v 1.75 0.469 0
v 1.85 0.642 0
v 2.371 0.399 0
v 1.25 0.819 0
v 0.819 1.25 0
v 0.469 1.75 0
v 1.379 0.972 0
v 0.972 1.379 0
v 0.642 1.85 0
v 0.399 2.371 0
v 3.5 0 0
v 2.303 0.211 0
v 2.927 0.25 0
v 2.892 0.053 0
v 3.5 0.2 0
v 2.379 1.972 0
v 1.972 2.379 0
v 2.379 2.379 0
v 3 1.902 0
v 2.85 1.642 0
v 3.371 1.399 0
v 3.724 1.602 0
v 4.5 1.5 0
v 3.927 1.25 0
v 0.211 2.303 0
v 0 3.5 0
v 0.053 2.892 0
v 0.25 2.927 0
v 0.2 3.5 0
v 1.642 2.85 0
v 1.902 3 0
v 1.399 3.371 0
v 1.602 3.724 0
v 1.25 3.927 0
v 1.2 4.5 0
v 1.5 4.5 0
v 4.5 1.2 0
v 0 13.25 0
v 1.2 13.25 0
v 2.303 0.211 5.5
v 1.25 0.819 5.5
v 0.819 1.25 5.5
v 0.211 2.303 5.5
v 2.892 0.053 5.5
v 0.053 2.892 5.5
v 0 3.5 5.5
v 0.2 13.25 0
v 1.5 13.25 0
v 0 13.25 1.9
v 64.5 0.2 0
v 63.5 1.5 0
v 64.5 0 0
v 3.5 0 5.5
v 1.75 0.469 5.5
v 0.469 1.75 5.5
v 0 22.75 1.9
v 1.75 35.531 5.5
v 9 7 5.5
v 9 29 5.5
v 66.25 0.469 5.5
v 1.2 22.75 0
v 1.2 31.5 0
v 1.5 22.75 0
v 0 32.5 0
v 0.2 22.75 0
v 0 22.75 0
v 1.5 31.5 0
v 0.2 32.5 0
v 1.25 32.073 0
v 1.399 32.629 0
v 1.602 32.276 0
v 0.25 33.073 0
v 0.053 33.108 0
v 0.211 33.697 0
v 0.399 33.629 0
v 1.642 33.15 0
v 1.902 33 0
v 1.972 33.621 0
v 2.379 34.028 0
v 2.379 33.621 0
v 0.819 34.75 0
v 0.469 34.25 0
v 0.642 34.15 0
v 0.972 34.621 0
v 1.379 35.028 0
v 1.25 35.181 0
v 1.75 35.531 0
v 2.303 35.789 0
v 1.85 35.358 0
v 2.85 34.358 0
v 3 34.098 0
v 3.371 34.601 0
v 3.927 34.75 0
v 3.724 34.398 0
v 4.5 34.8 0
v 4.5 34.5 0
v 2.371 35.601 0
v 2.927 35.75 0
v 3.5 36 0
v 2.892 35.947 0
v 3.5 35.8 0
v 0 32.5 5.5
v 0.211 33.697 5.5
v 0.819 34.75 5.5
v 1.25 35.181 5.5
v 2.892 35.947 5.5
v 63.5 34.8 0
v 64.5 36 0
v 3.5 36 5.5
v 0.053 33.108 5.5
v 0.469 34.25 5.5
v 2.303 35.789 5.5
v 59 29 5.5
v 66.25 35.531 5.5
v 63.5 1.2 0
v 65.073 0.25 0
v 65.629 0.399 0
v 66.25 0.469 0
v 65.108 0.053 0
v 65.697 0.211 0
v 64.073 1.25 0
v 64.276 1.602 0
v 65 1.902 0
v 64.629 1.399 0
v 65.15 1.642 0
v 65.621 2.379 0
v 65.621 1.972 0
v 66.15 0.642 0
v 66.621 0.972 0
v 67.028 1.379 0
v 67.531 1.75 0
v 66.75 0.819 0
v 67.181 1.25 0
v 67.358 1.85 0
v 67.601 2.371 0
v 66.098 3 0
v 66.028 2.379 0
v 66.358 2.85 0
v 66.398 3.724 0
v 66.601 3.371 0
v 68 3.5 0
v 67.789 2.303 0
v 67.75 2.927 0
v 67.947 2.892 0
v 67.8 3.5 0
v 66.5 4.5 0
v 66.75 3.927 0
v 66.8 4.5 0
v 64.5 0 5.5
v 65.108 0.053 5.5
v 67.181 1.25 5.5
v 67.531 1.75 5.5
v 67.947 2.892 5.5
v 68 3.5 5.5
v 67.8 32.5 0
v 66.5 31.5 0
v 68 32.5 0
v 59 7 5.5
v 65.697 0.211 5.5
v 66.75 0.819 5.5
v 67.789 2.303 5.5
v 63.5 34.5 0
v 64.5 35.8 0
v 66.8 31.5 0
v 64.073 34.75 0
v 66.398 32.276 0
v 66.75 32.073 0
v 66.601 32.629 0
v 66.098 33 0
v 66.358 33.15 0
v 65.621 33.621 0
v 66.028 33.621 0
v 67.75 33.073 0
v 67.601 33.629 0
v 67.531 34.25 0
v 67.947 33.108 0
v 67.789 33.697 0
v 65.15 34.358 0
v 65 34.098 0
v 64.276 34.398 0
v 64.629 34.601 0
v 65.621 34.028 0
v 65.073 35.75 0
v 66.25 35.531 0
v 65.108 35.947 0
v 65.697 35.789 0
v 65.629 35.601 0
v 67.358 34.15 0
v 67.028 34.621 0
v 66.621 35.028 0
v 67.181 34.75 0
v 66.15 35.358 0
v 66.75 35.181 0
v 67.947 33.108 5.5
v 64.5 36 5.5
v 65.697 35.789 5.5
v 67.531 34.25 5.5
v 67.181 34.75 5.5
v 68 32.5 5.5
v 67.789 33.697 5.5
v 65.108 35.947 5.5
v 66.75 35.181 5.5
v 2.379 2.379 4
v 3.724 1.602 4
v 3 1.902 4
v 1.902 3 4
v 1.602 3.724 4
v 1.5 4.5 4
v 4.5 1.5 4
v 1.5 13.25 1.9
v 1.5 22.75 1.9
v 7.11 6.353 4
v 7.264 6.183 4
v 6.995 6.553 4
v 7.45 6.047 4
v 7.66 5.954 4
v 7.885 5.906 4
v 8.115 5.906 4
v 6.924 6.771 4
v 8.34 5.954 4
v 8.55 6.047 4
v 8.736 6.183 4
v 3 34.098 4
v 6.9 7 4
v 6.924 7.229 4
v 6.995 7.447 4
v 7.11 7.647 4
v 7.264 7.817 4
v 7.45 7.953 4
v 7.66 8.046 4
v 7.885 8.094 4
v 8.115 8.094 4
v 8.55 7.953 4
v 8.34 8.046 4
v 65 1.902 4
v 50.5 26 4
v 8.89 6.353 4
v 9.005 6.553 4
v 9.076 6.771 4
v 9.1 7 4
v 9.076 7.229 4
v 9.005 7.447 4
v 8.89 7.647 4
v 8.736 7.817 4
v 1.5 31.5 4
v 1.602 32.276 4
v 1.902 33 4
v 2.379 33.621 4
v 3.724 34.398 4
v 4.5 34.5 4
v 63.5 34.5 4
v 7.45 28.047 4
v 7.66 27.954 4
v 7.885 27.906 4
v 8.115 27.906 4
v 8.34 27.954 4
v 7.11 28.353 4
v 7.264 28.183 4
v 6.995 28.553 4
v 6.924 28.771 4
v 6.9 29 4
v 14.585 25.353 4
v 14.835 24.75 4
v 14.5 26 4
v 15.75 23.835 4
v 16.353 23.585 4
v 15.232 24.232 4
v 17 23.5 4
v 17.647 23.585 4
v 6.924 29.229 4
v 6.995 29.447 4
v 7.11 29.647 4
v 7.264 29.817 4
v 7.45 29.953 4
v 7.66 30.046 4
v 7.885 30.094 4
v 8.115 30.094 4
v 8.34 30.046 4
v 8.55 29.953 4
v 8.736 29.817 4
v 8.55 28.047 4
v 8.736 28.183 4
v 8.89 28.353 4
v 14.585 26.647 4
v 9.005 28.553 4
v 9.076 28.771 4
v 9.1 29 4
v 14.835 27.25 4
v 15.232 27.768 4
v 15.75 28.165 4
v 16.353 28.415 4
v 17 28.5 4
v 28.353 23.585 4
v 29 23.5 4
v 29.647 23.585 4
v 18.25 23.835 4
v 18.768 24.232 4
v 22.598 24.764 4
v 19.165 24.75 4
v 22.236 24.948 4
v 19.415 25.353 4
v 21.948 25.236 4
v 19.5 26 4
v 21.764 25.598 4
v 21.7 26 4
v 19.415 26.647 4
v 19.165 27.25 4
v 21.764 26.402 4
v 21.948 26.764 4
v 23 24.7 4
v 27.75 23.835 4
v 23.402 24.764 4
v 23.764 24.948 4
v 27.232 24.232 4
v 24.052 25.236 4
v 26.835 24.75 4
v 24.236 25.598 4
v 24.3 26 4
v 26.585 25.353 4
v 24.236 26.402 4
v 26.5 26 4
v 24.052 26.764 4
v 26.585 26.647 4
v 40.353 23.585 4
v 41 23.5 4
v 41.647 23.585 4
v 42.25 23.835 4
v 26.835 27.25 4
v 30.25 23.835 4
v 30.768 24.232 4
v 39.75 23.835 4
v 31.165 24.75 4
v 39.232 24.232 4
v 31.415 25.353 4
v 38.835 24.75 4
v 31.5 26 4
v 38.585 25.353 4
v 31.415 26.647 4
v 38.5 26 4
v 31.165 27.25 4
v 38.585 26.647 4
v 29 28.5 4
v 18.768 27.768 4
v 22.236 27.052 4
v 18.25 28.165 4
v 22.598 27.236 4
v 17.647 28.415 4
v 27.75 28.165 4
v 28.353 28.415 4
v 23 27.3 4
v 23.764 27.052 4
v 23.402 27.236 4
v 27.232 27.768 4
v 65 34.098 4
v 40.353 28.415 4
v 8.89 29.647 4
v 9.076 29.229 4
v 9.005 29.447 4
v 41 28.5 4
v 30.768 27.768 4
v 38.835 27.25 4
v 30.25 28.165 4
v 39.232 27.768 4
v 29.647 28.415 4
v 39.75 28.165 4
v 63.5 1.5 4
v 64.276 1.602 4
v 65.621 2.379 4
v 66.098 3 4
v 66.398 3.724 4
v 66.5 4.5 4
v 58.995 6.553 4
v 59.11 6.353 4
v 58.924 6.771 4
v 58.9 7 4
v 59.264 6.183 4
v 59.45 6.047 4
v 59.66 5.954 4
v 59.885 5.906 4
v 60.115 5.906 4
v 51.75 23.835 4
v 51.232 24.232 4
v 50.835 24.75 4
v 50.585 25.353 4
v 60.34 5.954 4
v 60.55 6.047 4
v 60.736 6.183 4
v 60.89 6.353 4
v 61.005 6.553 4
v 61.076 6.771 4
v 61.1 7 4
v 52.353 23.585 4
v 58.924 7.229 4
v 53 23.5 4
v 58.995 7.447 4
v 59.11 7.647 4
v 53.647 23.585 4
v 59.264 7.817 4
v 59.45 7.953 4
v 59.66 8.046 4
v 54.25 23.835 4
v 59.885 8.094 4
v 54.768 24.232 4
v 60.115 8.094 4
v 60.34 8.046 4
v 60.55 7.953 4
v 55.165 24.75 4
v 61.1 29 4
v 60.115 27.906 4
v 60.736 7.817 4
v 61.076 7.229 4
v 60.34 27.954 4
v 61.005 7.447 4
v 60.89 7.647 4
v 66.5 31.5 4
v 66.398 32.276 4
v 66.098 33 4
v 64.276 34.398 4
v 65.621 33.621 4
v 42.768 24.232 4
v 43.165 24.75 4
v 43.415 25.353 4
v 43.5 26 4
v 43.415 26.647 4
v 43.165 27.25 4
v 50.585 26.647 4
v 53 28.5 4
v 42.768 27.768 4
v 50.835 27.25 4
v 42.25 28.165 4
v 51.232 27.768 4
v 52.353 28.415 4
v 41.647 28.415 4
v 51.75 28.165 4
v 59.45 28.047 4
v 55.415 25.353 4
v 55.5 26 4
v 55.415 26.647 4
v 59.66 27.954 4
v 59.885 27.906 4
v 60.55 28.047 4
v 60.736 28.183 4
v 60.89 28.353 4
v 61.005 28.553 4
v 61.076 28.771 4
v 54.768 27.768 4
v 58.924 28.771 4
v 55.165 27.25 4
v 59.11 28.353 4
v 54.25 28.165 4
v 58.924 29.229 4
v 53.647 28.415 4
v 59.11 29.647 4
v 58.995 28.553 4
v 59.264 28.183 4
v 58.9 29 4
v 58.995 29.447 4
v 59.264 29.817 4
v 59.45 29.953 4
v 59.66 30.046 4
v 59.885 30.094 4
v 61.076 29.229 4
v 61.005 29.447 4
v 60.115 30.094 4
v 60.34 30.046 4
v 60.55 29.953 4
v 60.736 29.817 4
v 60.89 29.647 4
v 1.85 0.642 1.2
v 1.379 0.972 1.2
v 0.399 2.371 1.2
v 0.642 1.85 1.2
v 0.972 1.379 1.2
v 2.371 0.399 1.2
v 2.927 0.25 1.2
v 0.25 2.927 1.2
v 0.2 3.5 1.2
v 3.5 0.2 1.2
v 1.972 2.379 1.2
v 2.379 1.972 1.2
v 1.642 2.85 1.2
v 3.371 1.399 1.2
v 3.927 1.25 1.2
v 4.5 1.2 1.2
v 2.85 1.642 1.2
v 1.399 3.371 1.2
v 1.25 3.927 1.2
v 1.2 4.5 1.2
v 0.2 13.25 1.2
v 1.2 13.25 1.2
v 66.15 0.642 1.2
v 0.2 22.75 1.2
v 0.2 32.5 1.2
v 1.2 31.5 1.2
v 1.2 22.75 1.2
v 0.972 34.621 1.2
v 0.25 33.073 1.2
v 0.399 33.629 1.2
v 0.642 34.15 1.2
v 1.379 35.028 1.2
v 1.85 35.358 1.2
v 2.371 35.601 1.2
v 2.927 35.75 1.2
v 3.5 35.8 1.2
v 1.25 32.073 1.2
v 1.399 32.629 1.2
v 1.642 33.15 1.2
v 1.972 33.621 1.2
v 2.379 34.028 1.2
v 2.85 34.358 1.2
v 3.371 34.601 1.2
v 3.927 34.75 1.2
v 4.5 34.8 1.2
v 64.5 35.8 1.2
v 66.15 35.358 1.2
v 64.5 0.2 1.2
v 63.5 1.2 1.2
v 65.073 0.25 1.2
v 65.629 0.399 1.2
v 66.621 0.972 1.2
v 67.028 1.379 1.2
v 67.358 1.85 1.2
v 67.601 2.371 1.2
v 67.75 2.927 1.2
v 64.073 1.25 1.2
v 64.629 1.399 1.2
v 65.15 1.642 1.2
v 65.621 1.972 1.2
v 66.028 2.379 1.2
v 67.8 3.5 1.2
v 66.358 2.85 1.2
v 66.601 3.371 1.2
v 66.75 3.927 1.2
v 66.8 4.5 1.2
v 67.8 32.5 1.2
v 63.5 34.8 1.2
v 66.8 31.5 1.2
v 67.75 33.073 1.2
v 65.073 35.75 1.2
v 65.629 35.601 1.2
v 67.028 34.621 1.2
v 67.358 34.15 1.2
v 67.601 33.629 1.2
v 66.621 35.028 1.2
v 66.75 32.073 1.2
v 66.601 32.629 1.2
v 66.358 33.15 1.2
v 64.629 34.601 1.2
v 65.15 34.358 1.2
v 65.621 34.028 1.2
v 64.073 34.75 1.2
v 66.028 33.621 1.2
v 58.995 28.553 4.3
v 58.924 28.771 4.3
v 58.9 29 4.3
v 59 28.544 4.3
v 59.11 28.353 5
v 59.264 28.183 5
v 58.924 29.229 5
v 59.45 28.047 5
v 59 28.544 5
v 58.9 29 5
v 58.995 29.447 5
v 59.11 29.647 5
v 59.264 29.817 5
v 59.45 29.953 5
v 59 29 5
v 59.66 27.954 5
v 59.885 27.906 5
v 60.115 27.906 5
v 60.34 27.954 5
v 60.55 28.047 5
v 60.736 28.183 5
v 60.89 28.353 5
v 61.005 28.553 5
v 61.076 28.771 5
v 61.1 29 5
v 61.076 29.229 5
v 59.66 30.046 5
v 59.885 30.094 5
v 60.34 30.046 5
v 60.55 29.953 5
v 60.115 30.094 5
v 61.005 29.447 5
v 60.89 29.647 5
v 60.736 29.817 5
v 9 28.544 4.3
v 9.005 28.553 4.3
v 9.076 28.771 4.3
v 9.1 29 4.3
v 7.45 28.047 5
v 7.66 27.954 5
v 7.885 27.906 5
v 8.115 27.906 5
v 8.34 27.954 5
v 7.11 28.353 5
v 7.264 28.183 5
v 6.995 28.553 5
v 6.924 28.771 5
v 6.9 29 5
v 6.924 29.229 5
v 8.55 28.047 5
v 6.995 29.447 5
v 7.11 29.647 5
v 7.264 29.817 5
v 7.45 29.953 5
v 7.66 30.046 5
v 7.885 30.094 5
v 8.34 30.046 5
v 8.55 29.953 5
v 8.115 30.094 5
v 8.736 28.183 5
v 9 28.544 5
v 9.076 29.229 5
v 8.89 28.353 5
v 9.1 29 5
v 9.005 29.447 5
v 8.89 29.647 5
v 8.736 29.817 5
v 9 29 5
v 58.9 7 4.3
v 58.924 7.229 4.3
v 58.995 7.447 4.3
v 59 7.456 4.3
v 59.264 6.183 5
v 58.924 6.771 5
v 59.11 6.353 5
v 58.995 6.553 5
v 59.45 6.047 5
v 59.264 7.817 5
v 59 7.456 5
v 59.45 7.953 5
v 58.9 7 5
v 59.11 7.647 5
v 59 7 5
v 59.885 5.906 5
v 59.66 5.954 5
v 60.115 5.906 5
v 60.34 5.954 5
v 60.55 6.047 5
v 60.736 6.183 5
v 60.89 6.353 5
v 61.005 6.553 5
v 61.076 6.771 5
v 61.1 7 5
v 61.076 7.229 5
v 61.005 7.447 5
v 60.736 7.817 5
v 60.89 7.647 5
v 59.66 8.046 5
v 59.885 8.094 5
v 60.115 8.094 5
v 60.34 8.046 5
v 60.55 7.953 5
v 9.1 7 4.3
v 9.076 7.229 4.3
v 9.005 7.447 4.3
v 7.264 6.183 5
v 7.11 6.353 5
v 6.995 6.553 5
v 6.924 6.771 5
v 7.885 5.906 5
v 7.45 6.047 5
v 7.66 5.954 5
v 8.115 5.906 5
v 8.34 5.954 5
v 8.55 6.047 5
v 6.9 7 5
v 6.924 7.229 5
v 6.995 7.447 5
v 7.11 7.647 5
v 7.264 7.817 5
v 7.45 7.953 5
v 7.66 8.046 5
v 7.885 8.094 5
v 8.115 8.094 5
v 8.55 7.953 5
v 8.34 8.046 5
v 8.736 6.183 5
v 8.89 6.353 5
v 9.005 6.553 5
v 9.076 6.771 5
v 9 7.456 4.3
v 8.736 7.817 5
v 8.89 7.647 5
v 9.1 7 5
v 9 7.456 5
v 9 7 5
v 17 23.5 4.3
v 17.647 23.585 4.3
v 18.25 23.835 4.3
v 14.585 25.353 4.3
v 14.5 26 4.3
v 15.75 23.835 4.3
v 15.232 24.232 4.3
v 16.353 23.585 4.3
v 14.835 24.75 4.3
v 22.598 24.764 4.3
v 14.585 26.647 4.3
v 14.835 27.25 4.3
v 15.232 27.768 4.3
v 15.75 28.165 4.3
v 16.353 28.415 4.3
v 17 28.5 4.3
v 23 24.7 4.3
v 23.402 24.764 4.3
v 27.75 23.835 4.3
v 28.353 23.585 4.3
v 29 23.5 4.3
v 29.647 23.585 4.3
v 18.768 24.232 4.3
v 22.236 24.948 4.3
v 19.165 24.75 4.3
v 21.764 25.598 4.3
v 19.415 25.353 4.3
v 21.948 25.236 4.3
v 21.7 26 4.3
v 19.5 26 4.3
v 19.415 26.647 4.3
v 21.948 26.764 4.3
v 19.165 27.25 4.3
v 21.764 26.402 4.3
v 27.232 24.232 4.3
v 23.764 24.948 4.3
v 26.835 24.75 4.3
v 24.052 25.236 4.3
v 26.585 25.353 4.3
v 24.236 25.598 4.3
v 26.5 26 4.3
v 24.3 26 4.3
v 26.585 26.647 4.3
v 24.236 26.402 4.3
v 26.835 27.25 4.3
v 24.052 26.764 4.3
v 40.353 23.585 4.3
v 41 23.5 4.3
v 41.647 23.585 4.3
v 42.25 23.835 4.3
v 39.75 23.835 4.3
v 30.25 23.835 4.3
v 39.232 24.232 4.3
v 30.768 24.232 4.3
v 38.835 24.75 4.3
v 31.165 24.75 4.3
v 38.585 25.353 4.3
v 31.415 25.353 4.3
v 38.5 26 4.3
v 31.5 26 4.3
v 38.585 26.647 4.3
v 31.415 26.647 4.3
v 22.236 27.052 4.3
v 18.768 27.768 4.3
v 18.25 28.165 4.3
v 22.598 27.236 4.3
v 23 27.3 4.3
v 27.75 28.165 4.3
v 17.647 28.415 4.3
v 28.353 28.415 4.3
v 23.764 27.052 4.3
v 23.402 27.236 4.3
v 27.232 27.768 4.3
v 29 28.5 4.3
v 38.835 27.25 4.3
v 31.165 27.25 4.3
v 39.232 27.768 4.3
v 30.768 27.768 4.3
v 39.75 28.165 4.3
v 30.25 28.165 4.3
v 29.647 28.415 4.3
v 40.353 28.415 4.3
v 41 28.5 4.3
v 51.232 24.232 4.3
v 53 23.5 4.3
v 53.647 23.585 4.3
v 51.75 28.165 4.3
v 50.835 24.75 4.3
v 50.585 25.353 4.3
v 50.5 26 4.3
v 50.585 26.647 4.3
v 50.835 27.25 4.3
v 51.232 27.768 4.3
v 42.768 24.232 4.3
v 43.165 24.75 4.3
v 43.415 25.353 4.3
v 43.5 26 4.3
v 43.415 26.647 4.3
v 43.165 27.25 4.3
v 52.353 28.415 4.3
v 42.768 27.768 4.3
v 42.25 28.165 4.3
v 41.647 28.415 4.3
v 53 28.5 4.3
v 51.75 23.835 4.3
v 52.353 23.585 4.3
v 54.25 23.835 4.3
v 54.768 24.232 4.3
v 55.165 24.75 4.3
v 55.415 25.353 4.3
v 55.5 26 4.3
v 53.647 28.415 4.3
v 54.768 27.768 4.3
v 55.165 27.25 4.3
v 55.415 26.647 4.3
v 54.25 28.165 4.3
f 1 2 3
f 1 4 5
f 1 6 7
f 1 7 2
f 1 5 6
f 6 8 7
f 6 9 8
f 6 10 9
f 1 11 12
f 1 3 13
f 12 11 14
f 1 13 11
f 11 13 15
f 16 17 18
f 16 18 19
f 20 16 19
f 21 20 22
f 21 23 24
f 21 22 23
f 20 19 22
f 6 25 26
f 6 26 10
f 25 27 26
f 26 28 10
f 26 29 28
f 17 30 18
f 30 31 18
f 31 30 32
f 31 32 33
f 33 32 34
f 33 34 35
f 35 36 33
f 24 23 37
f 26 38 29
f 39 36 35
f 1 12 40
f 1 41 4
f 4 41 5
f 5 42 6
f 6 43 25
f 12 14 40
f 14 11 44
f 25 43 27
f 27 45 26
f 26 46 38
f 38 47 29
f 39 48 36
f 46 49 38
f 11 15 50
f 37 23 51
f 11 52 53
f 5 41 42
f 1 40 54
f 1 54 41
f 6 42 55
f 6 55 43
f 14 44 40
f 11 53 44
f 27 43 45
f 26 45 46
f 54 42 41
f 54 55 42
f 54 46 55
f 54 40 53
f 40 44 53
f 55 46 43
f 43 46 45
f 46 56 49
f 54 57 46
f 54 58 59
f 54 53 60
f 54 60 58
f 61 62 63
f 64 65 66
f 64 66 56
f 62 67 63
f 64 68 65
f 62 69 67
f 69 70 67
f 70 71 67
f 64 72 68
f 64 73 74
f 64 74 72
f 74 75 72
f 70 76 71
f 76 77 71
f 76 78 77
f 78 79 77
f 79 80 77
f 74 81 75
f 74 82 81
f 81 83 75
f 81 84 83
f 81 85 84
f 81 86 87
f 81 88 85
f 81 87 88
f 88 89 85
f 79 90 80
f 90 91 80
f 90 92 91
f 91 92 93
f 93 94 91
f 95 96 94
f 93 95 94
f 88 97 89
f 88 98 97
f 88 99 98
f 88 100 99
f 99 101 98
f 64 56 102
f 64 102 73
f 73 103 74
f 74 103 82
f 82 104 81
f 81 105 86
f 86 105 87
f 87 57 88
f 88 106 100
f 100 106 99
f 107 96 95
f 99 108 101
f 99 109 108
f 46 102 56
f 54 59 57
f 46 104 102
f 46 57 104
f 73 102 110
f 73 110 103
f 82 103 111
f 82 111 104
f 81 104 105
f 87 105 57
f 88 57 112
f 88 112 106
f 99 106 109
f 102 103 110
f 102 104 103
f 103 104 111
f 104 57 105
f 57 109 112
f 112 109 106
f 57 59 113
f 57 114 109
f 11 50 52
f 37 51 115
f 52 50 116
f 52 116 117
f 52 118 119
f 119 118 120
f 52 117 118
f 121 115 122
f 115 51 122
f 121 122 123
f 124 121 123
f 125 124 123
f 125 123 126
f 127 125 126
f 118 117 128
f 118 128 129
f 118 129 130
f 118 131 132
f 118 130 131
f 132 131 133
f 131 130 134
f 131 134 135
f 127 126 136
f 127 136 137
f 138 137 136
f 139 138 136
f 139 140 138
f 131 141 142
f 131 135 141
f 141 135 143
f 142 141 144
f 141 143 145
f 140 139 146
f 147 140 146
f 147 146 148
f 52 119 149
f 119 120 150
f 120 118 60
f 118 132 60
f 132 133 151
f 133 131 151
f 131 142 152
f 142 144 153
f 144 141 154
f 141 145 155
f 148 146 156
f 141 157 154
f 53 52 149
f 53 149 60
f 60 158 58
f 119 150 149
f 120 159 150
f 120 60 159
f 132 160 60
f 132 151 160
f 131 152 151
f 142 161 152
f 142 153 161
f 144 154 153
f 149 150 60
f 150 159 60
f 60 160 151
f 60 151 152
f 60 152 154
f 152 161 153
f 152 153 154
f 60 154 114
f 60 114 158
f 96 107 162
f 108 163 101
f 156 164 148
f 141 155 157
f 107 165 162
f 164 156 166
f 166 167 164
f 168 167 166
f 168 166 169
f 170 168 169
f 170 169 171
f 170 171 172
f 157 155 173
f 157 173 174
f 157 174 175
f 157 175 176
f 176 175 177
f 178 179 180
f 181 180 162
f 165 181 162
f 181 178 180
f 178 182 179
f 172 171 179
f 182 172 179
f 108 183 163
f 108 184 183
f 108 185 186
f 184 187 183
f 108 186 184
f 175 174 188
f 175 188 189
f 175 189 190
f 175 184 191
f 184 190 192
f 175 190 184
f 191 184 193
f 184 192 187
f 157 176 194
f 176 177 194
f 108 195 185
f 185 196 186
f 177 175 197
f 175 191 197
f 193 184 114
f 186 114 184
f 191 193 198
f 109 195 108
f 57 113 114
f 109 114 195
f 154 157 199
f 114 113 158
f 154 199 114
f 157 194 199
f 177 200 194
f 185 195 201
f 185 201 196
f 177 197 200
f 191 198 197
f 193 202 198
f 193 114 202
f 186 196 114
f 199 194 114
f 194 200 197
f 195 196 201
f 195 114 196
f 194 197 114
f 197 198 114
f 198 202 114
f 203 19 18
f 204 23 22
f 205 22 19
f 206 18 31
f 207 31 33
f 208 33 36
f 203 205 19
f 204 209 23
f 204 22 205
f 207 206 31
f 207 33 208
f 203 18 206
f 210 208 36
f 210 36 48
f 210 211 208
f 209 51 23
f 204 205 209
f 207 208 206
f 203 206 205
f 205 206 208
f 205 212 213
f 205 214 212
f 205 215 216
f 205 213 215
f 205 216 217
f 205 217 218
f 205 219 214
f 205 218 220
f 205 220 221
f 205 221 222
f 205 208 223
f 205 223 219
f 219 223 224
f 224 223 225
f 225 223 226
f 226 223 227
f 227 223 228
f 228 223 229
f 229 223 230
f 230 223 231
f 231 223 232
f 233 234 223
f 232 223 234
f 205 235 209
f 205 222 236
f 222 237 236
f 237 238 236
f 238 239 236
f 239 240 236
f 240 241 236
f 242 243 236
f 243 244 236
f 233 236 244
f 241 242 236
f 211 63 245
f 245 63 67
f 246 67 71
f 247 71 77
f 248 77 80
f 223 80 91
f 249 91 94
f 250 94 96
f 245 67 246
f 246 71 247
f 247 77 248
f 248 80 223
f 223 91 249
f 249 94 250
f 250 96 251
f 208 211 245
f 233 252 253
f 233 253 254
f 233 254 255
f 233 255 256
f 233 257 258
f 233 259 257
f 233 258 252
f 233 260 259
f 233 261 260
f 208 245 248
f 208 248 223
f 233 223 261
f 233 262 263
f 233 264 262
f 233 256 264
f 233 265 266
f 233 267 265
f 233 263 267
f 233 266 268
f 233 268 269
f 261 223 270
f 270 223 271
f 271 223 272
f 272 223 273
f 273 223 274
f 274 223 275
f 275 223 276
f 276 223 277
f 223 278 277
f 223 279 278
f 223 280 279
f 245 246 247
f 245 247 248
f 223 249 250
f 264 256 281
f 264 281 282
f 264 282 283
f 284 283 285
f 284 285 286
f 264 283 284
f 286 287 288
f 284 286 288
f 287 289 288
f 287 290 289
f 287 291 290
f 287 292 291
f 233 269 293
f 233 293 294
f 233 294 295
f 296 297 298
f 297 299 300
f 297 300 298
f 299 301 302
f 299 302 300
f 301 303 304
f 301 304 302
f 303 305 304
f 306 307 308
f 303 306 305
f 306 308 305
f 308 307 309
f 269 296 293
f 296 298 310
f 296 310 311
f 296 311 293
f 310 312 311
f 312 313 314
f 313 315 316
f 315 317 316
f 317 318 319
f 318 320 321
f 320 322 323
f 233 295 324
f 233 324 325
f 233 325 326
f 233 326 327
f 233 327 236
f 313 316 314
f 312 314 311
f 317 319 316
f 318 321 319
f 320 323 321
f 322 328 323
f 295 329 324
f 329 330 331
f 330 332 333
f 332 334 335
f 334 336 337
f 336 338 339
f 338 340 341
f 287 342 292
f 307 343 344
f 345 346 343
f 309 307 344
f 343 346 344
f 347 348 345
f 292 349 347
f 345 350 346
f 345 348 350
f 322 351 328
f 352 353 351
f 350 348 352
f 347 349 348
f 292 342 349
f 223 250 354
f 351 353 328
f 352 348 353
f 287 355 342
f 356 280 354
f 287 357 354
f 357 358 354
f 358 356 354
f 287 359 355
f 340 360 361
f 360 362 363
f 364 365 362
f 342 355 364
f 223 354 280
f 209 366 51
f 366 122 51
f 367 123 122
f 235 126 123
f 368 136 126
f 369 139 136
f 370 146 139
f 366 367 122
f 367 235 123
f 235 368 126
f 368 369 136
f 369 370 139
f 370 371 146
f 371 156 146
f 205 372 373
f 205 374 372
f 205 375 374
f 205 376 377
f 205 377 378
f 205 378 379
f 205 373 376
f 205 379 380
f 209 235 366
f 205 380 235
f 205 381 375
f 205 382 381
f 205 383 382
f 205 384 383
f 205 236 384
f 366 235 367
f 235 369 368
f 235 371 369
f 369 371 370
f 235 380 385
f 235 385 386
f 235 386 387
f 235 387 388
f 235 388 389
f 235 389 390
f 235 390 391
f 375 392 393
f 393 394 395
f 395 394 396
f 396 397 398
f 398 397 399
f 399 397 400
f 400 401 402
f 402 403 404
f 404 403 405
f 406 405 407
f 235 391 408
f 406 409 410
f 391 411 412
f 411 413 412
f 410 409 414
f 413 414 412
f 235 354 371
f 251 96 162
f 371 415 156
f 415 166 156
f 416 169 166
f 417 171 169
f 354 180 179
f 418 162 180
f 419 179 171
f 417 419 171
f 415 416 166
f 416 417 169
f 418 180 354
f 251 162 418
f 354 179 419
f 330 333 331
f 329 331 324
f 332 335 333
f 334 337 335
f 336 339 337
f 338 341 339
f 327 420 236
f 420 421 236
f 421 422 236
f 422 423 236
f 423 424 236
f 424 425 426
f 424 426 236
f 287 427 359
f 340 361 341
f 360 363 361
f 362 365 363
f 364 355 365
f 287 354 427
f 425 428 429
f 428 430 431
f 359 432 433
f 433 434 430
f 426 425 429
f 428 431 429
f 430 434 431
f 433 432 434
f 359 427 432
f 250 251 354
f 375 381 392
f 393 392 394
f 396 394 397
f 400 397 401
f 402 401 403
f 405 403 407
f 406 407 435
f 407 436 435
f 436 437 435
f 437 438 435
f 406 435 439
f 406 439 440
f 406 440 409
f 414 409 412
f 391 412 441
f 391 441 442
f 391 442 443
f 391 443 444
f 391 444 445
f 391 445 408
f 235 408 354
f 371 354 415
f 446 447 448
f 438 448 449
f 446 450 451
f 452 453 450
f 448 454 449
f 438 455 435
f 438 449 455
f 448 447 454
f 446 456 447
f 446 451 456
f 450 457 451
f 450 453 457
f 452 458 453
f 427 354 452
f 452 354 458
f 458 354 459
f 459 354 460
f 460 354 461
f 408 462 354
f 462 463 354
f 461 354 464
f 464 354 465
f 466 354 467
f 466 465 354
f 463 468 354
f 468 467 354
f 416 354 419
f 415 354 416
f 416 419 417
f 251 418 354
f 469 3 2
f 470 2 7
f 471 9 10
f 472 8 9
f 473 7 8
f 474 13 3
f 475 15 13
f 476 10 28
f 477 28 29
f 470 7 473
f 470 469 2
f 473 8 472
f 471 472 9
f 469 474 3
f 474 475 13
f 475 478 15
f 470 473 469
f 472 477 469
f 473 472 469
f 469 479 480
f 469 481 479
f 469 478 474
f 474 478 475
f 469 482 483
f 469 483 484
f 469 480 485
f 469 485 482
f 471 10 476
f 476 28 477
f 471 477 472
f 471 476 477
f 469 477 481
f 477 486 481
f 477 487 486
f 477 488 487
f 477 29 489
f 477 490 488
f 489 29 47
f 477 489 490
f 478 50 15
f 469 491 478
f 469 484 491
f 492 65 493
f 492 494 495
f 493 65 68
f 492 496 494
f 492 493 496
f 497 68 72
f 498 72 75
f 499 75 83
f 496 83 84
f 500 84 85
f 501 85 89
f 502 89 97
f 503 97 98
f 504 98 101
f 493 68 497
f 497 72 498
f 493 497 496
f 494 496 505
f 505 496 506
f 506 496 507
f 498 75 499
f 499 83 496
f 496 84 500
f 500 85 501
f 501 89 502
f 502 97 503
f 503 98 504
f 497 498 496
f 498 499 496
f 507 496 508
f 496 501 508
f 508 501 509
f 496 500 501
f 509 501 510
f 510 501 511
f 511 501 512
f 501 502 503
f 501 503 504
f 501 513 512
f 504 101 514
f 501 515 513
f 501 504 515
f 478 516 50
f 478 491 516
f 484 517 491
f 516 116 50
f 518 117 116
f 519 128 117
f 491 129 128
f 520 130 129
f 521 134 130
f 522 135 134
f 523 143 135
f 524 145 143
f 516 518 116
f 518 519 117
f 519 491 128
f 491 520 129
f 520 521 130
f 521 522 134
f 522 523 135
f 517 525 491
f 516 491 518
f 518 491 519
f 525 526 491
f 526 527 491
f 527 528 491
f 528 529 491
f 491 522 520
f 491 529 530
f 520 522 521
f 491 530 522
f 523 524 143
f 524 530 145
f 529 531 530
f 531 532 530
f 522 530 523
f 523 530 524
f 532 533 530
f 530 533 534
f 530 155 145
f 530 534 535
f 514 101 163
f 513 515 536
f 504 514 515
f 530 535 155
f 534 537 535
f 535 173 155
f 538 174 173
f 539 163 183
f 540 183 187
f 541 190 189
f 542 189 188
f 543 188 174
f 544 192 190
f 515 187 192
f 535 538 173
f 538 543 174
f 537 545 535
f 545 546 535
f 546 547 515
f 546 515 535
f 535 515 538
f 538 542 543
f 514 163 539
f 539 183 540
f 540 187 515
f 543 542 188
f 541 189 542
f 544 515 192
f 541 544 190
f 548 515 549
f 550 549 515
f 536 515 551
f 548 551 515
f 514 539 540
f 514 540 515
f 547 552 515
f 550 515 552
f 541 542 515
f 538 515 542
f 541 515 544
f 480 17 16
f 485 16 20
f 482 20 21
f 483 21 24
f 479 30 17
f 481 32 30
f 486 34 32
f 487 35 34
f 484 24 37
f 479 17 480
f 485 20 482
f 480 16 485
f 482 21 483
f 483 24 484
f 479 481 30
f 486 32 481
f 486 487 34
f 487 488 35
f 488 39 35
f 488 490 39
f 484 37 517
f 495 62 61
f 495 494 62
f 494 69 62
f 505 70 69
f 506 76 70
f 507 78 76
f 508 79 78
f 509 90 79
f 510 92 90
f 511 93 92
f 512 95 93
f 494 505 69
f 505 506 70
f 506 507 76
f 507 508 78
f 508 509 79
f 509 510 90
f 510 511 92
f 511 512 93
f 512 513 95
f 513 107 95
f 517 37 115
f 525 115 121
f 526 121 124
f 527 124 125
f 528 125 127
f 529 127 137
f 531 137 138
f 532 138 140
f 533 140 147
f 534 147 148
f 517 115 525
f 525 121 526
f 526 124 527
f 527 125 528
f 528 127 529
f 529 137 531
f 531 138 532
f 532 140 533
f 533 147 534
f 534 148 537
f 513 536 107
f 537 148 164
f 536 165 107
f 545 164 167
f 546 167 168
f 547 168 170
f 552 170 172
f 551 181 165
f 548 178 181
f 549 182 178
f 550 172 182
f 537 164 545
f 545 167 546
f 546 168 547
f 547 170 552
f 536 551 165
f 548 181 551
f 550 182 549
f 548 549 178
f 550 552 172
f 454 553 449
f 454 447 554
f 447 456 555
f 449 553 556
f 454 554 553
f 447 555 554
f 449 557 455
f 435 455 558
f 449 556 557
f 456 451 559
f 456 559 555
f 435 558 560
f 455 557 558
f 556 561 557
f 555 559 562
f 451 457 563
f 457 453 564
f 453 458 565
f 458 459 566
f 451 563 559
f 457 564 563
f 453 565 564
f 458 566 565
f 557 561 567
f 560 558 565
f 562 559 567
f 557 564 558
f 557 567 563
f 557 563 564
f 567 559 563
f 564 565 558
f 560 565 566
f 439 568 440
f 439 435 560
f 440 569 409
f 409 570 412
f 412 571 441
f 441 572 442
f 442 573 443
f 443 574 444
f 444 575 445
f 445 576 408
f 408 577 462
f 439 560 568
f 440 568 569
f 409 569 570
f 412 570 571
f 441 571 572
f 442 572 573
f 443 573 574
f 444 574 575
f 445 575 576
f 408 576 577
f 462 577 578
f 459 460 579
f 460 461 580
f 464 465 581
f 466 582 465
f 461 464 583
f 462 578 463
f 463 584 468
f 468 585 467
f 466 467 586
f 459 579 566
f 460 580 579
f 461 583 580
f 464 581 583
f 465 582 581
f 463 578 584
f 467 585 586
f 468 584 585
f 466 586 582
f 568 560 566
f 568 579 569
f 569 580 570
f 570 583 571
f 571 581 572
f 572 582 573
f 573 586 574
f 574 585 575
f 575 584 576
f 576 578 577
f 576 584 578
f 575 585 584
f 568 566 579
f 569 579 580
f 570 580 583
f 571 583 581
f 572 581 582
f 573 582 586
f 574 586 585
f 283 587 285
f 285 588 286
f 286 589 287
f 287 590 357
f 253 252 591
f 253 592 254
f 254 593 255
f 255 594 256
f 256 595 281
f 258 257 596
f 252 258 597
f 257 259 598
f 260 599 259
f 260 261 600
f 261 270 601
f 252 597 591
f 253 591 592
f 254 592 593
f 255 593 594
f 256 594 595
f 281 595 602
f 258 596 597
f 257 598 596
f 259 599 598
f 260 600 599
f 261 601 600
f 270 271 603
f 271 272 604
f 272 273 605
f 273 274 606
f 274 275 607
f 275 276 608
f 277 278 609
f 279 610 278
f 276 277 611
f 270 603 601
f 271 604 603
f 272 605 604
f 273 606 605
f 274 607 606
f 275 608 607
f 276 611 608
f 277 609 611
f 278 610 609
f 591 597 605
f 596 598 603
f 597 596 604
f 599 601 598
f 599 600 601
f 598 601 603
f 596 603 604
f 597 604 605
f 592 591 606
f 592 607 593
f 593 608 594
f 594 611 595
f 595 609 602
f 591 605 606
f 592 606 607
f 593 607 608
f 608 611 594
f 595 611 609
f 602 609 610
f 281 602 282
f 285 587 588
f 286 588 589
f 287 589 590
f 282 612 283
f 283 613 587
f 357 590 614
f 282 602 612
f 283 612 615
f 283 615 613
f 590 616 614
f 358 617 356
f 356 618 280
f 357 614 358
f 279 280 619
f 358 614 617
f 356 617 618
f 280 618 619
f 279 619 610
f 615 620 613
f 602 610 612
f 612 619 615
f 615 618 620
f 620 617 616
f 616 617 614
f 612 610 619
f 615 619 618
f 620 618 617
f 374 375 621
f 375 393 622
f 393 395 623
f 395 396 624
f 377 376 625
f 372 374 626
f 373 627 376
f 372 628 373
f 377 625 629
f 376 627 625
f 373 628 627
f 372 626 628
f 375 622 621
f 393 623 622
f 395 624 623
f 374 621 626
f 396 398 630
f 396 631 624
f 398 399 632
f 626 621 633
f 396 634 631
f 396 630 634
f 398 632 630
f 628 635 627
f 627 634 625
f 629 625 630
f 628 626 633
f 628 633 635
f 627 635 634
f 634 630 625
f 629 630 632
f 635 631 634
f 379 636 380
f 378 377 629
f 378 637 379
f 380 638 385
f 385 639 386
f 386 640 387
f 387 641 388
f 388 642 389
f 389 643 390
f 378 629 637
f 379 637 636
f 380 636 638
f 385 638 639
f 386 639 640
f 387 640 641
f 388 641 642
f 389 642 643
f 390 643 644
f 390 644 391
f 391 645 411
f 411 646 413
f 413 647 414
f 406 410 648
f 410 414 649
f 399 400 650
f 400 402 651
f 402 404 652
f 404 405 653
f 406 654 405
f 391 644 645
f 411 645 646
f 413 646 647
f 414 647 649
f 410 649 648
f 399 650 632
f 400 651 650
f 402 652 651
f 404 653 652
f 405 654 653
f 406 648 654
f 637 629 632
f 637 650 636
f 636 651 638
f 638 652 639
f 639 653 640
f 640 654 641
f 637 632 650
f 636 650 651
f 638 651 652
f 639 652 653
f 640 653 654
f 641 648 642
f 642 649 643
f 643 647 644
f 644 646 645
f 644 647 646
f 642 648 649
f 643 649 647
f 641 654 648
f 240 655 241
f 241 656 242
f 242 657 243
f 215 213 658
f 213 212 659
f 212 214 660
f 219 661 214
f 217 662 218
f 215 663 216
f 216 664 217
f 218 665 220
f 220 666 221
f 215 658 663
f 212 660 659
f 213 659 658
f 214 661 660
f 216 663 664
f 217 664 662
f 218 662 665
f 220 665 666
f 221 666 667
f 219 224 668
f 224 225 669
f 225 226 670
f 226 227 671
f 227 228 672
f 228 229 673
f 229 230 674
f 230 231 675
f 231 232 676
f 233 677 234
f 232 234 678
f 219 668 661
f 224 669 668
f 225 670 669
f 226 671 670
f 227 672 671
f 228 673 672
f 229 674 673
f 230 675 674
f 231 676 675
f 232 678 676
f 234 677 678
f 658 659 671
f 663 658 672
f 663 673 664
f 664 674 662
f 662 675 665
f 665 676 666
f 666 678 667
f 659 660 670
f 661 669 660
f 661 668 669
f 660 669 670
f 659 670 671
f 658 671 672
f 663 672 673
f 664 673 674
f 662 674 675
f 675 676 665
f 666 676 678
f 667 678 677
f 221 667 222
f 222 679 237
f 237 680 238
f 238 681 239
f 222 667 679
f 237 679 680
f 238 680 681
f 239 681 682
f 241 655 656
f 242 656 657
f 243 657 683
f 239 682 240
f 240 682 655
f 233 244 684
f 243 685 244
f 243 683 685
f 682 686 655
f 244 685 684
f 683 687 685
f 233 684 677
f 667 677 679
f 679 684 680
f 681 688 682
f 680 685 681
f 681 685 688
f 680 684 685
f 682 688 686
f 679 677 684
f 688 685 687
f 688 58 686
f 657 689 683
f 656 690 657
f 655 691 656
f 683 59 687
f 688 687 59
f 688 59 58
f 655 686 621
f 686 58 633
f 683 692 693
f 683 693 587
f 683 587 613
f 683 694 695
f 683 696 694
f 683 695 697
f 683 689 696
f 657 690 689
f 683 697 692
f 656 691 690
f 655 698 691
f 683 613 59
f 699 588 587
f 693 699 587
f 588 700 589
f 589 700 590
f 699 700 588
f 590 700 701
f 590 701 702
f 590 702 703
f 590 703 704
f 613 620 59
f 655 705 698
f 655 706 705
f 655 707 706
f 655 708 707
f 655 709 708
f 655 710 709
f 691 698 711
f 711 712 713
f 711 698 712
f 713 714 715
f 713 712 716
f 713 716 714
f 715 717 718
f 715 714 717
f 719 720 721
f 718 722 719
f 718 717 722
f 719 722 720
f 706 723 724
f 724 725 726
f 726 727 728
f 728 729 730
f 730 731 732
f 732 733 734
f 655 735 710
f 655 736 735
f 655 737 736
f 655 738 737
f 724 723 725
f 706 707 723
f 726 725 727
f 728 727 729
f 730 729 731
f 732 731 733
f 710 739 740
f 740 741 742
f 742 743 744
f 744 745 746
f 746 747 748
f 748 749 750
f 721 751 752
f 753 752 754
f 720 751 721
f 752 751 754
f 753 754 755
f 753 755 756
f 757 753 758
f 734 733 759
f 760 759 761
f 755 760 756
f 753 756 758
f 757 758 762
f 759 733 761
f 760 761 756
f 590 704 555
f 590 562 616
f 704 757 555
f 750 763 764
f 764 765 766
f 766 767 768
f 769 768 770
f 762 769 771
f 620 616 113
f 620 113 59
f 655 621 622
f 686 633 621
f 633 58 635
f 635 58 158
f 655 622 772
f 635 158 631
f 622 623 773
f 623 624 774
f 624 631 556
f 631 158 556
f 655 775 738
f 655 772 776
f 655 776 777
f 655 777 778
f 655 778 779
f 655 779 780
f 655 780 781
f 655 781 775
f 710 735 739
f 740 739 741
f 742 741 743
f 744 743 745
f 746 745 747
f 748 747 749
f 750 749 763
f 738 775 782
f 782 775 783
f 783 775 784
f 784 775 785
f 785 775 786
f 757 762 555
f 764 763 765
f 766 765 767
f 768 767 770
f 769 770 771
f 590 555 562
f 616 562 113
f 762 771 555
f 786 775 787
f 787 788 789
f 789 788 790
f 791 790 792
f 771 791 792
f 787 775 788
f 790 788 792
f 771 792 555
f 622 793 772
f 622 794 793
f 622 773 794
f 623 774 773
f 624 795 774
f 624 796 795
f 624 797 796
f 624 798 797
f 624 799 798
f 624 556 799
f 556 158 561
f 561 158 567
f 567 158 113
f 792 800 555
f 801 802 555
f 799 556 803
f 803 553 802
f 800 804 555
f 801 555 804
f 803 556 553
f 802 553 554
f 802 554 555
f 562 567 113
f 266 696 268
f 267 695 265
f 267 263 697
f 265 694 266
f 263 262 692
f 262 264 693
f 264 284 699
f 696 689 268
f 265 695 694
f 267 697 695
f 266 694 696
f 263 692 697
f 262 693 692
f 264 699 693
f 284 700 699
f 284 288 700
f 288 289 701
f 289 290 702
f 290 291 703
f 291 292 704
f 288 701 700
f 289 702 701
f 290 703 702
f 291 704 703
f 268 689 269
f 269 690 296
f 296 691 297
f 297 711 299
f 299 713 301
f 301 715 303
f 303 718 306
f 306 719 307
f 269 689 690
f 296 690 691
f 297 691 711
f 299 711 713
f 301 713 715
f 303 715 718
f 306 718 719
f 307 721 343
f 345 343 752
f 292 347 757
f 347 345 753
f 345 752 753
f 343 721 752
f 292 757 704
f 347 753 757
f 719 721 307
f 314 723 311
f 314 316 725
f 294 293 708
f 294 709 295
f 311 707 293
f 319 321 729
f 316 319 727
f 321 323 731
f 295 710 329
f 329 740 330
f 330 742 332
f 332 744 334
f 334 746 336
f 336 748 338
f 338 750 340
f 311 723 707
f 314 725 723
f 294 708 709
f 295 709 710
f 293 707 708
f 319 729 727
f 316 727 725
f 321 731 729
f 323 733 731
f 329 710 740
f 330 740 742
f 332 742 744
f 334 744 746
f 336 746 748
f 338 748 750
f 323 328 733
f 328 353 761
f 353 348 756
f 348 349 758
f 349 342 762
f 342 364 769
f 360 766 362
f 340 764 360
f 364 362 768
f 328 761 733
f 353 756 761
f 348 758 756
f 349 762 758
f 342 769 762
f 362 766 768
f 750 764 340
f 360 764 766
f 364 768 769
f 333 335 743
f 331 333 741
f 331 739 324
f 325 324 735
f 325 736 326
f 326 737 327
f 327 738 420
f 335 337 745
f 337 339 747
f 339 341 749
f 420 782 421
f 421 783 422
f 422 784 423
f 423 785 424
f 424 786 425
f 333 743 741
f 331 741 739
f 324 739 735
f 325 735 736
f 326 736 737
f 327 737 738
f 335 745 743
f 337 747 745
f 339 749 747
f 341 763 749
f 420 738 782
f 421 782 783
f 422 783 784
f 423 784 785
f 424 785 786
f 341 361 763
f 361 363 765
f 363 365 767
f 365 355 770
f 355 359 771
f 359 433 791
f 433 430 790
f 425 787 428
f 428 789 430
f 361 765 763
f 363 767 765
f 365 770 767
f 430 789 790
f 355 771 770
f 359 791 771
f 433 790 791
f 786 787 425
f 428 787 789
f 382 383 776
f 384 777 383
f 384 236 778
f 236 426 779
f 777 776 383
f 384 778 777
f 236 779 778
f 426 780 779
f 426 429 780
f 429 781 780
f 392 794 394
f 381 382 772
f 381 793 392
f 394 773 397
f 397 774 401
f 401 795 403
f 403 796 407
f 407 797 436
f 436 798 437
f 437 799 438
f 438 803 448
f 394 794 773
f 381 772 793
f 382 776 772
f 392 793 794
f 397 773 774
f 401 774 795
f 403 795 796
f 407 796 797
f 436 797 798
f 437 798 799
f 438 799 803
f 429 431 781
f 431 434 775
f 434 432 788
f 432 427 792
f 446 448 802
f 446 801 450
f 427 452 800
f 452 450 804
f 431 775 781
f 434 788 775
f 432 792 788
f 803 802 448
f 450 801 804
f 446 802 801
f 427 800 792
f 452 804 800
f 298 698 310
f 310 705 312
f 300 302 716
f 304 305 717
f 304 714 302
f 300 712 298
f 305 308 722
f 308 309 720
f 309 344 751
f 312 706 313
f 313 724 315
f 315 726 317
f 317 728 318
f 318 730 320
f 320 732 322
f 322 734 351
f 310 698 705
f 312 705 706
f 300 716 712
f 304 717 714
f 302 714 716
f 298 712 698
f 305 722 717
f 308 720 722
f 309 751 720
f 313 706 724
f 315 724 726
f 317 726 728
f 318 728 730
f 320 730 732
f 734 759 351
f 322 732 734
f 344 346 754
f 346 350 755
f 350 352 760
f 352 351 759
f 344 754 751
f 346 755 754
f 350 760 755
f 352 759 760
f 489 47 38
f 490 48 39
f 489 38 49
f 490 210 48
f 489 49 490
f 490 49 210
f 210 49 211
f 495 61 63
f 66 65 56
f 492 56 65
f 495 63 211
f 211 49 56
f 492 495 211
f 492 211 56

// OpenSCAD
// file: ../../00_common/dummies/dummy_omm_ucs_pcb.scad
// =============================================================================
// OpenMotorBridge - Dummy 3D Model: OMM 2.4 GHz UCS Intercom PCBA (PCBA 09)
// =============================================================================
// File: hardware/cad/scad/00_common/dummies/dummy_omm_ucs_pcb.scad
// Description: Accurate 3D CAD model of the autonomous OMM 2.4 GHz UCS PCB:
//              - 60.0 x 30.0 x 1.0 mm FR4 substrate (ENIG gold finish)
//              - 4x M2 mounting holes (pitch: 52.0 x 22.0 mm)
//              - Espressif ESP32-C6-MINI-1 (13.2 x 16.6 mm)
//              - Texas Instruments BQ24075 PMIC (QFN-16 3x3mm)
//              - Everest Semi ES8311 Audio Codec (QFN-20 3x3mm)
//              - Johanson 2450AT45A100 2.4 GHz ceramic antenna
//              - IP67 16-Pin USB-C receptacle (Korean HRO TYPE-C-31-M-12)
//              - 4x tactile IP67 micro-switches (Panasonic EVQ-P2)
//              - WS2812B-2020 RGB Status-LED
//              - 600 mAh LiPo Flat Pouch Cell (38 x 24 x 4.5 mm)
// =============================================================================

include <../parameters.scad>;

module dummy_omm_ucs_pcb() {
    pcb_l = 60.0;
    pcb_w = 30.0;
    pcb_h = 1.0;

    // 1. FR4 Substrate (Black Soldermask, ENIG Gold Pads)
    color([0.12, 0.12, 0.14]) {
        difference() {
            // Main PCB outline with rounded corners
            hull() {
                translate([2.5, 2.5, 0]) cylinder(r=2.5, h=pcb_h, $fn=32);
                translate([pcb_l - 2.5, 2.5, 0]) cylinder(r=2.5, h=pcb_h, $fn=32);
                translate([2.5, pcb_w - 2.5, 0]) cylinder(r=2.5, h=pcb_h, $fn=32);
                translate([pcb_l - 2.5, pcb_w - 2.5, 0]) cylinder(r=2.5, h=pcb_h, $fn=32);
            }
            // 4x M2 Mounting Holes (52.0 x 22.0 mm pitch, 4.0 mm from edges)
            translate([4.0, 4.0, -0.1]) cylinder(r=M2_SCREW_HOLE_R, h=pcb_h + 0.2, $fn=24);
            translate([pcb_l - 4.0, 4.0, -0.1]) cylinder(r=M2_SCREW_HOLE_R, h=pcb_h + 0.2, $fn=24);
            translate([4.0, pcb_w - 4.0, -0.1]) cylinder(r=M2_SCREW_HOLE_R, h=pcb_h + 0.2, $fn=24);
            translate([pcb_l - 4.0, pcb_w - 4.0, -0.1]) cylinder(r=M2_SCREW_HOLE_R, h=pcb_h + 0.2, $fn=24);
        }
    }

    // 2. Espressif ESP32-C6-MINI-1 Module (Top Face, Centered in X=26mm)
    color("silver") {
        translate([18.0, 7.0, pcb_h])
            cube(size=[16.6, 13.2, 2.4], center=false);
    }

    // 3. TI BQ24075 PMIC (QFN-16 3x3mm)
    color("black") {
        translate([38.0, 6.0, pcb_h])
            cube(size=[3.0, 3.0, 0.9], center=false);
    }

    // 4. Everest Semi ES8311 Audio Codec (QFN-20 3x3mm)
    color("black") {
        translate([38.0, 14.0, pcb_h])
            cube(size=[3.0, 3.0, 0.9], center=false);
    }

    // 5. Johanson 2450AT Ceramic Chip Antenna (+X Edge, Keepout zone)
    color("whitesmoke") {
        translate([pcb_l - 11.5, pcb_w/2.0 - 1.0, pcb_h])
            cube(size=[9.5, 2.0, 1.2], center=false);
    }

    // 6. IP67 16-Pin USB-C Receptacle (-X Edge, facing outward)
    color("silver") {
        translate([-1.5, pcb_w/2.0 - 4.5, pcb_h])
            cube(size=[7.5, 9.0, 3.2], center=false);
    }

    // 7. 4x Tactile IP67 Micro-Switches (Top Face)
    color("darkslategray") {
        // SW1: Power / MFB
        translate([10.0, 22.0, pcb_h]) cube(size=[3.5, 2.8, 1.2], center=true);
        // SW2: Mesh / Group
        translate([22.0, 22.0, pcb_h]) cube(size=[3.5, 2.8, 1.2], center=true);
        // SW3: Vol+
        translate([34.0, 22.0, pcb_h]) cube(size=[3.5, 2.8, 1.2], center=true);
        // SW4: Vol-
        translate([46.0, 22.0, pcb_h]) cube(size=[3.5, 2.8, 1.2], center=true);
    }

    // 8. WS2812B-2020 RGB Status-LED
    color("cyan") {
        translate([16.0, 22.0, pcb_h])
            cube(size=[2.0, 2.0, 0.7], center=true);
    }

    // 9. 1S LiPo Flat Pouch Cell (Mounted on Bottom Face or Nested)
    color([0.15, 0.35, 0.65]) {
        translate([11.0, (pcb_w - 24.0)/2.0, -4.5])
            cube(size=[38.0, 24.0, 4.5], center=false);
    }
}

// Standalone Render Preview
dummy_omm_ucs_pcb();
// file: ../../00_common/screw_bosses.scad
// =============================================================================
// OpenMotorBridge - Screw Bosses & Fastener Primitives
// =============================================================================
// File: hardware/cad/scad/00_common/screw_bosses.scad
// Description: Reusable parametric modules for screw standoffs, corner clamping
//              posts, and mounting ears.
// =============================================================================

include <parameters.scad>;

// 1. Cylindrical Screw Standoff Boss (with center hole)
module screw_boss(outer_r=2.5, inner_r=1.2, h=5.0) {
    difference() {
        cylinder(r=outer_r, h=h, center=false);
        translate([0, 0, -0.1])
            cylinder(r=inner_r, h=h + 0.2, center=false);
    }
}

// 2. Rectangular Corner Clamping Post (with center screw hole)
module corner_screw_post(size_x=5.0, size_y=5.0, h=12.0, hole_r=1.65, hole_h=10.0, hole_offset_z=2.0) {
    difference() {
        cube(size=[size_x, size_y, h], center=false);
        translate([size_x/2.0, size_y/2.0, hole_offset_z])
            cylinder(r=hole_r, h=hole_h + 0.1, center=false);
    }
}

// 3. M4 Silentblock Outer Mounting Ear (Centered in Y around y=0, extends along +X)
module mounting_ear_m4(ear_len=14.0, ear_w=12.0, ear_h=5.0, hole_r=2.2) {
    difference() {
        union() {
            translate([0, -ear_w/2.0, 0])
                cube(size=[ear_len - ear_w/2.0, ear_w, ear_h], center=false);
            translate([ear_len - ear_w/2.0, 0, 0])
                cylinder(r=ear_w/2.0, h=ear_h, center=false);
        }
        translate([ear_len - ear_w/2.0, 0, -0.1])
            cylinder(r=hole_r, h=ear_h + 0.2, center=false);
    }
}

// 4. Captive Hex Nut Pocket (DIN 934 / DIN 985 with center screw through-hole)
module hex_nut_pocket(sw=NUT_M4_SW, h=NUT_M4_H, screw_r=M4_SCREW_HOLE_R, through_h=10.0) {
    // Hexagonal pocket (flat-to-flat SW converted to circle radius: r = sw / sqrt(3))
    hex_r = sw / sqrt(3);
    union() {
        // Hexagonal nut pocket
        cylinder(r=hex_r, h=h, center=false, $fn=6);
        // Screw clearance through-hole
        translate([0, 0, -through_h/2.0])
            cylinder(r=screw_r, h=through_h + h, center=false, $fn=30);
    }
}
// main file
// =============================================================================
// OpenMotorBridge - OMM 2.4 GHz UCS Module: Top Shell (PA12 MJF)
// =============================================================================
// File: hardware/cad/scad/03_pod_cartridges/parts/omm_ucs_top_shell.scad
// =============================================================================

use <omm_ucs_module.scad>;

omm_ucs_top_shell();
